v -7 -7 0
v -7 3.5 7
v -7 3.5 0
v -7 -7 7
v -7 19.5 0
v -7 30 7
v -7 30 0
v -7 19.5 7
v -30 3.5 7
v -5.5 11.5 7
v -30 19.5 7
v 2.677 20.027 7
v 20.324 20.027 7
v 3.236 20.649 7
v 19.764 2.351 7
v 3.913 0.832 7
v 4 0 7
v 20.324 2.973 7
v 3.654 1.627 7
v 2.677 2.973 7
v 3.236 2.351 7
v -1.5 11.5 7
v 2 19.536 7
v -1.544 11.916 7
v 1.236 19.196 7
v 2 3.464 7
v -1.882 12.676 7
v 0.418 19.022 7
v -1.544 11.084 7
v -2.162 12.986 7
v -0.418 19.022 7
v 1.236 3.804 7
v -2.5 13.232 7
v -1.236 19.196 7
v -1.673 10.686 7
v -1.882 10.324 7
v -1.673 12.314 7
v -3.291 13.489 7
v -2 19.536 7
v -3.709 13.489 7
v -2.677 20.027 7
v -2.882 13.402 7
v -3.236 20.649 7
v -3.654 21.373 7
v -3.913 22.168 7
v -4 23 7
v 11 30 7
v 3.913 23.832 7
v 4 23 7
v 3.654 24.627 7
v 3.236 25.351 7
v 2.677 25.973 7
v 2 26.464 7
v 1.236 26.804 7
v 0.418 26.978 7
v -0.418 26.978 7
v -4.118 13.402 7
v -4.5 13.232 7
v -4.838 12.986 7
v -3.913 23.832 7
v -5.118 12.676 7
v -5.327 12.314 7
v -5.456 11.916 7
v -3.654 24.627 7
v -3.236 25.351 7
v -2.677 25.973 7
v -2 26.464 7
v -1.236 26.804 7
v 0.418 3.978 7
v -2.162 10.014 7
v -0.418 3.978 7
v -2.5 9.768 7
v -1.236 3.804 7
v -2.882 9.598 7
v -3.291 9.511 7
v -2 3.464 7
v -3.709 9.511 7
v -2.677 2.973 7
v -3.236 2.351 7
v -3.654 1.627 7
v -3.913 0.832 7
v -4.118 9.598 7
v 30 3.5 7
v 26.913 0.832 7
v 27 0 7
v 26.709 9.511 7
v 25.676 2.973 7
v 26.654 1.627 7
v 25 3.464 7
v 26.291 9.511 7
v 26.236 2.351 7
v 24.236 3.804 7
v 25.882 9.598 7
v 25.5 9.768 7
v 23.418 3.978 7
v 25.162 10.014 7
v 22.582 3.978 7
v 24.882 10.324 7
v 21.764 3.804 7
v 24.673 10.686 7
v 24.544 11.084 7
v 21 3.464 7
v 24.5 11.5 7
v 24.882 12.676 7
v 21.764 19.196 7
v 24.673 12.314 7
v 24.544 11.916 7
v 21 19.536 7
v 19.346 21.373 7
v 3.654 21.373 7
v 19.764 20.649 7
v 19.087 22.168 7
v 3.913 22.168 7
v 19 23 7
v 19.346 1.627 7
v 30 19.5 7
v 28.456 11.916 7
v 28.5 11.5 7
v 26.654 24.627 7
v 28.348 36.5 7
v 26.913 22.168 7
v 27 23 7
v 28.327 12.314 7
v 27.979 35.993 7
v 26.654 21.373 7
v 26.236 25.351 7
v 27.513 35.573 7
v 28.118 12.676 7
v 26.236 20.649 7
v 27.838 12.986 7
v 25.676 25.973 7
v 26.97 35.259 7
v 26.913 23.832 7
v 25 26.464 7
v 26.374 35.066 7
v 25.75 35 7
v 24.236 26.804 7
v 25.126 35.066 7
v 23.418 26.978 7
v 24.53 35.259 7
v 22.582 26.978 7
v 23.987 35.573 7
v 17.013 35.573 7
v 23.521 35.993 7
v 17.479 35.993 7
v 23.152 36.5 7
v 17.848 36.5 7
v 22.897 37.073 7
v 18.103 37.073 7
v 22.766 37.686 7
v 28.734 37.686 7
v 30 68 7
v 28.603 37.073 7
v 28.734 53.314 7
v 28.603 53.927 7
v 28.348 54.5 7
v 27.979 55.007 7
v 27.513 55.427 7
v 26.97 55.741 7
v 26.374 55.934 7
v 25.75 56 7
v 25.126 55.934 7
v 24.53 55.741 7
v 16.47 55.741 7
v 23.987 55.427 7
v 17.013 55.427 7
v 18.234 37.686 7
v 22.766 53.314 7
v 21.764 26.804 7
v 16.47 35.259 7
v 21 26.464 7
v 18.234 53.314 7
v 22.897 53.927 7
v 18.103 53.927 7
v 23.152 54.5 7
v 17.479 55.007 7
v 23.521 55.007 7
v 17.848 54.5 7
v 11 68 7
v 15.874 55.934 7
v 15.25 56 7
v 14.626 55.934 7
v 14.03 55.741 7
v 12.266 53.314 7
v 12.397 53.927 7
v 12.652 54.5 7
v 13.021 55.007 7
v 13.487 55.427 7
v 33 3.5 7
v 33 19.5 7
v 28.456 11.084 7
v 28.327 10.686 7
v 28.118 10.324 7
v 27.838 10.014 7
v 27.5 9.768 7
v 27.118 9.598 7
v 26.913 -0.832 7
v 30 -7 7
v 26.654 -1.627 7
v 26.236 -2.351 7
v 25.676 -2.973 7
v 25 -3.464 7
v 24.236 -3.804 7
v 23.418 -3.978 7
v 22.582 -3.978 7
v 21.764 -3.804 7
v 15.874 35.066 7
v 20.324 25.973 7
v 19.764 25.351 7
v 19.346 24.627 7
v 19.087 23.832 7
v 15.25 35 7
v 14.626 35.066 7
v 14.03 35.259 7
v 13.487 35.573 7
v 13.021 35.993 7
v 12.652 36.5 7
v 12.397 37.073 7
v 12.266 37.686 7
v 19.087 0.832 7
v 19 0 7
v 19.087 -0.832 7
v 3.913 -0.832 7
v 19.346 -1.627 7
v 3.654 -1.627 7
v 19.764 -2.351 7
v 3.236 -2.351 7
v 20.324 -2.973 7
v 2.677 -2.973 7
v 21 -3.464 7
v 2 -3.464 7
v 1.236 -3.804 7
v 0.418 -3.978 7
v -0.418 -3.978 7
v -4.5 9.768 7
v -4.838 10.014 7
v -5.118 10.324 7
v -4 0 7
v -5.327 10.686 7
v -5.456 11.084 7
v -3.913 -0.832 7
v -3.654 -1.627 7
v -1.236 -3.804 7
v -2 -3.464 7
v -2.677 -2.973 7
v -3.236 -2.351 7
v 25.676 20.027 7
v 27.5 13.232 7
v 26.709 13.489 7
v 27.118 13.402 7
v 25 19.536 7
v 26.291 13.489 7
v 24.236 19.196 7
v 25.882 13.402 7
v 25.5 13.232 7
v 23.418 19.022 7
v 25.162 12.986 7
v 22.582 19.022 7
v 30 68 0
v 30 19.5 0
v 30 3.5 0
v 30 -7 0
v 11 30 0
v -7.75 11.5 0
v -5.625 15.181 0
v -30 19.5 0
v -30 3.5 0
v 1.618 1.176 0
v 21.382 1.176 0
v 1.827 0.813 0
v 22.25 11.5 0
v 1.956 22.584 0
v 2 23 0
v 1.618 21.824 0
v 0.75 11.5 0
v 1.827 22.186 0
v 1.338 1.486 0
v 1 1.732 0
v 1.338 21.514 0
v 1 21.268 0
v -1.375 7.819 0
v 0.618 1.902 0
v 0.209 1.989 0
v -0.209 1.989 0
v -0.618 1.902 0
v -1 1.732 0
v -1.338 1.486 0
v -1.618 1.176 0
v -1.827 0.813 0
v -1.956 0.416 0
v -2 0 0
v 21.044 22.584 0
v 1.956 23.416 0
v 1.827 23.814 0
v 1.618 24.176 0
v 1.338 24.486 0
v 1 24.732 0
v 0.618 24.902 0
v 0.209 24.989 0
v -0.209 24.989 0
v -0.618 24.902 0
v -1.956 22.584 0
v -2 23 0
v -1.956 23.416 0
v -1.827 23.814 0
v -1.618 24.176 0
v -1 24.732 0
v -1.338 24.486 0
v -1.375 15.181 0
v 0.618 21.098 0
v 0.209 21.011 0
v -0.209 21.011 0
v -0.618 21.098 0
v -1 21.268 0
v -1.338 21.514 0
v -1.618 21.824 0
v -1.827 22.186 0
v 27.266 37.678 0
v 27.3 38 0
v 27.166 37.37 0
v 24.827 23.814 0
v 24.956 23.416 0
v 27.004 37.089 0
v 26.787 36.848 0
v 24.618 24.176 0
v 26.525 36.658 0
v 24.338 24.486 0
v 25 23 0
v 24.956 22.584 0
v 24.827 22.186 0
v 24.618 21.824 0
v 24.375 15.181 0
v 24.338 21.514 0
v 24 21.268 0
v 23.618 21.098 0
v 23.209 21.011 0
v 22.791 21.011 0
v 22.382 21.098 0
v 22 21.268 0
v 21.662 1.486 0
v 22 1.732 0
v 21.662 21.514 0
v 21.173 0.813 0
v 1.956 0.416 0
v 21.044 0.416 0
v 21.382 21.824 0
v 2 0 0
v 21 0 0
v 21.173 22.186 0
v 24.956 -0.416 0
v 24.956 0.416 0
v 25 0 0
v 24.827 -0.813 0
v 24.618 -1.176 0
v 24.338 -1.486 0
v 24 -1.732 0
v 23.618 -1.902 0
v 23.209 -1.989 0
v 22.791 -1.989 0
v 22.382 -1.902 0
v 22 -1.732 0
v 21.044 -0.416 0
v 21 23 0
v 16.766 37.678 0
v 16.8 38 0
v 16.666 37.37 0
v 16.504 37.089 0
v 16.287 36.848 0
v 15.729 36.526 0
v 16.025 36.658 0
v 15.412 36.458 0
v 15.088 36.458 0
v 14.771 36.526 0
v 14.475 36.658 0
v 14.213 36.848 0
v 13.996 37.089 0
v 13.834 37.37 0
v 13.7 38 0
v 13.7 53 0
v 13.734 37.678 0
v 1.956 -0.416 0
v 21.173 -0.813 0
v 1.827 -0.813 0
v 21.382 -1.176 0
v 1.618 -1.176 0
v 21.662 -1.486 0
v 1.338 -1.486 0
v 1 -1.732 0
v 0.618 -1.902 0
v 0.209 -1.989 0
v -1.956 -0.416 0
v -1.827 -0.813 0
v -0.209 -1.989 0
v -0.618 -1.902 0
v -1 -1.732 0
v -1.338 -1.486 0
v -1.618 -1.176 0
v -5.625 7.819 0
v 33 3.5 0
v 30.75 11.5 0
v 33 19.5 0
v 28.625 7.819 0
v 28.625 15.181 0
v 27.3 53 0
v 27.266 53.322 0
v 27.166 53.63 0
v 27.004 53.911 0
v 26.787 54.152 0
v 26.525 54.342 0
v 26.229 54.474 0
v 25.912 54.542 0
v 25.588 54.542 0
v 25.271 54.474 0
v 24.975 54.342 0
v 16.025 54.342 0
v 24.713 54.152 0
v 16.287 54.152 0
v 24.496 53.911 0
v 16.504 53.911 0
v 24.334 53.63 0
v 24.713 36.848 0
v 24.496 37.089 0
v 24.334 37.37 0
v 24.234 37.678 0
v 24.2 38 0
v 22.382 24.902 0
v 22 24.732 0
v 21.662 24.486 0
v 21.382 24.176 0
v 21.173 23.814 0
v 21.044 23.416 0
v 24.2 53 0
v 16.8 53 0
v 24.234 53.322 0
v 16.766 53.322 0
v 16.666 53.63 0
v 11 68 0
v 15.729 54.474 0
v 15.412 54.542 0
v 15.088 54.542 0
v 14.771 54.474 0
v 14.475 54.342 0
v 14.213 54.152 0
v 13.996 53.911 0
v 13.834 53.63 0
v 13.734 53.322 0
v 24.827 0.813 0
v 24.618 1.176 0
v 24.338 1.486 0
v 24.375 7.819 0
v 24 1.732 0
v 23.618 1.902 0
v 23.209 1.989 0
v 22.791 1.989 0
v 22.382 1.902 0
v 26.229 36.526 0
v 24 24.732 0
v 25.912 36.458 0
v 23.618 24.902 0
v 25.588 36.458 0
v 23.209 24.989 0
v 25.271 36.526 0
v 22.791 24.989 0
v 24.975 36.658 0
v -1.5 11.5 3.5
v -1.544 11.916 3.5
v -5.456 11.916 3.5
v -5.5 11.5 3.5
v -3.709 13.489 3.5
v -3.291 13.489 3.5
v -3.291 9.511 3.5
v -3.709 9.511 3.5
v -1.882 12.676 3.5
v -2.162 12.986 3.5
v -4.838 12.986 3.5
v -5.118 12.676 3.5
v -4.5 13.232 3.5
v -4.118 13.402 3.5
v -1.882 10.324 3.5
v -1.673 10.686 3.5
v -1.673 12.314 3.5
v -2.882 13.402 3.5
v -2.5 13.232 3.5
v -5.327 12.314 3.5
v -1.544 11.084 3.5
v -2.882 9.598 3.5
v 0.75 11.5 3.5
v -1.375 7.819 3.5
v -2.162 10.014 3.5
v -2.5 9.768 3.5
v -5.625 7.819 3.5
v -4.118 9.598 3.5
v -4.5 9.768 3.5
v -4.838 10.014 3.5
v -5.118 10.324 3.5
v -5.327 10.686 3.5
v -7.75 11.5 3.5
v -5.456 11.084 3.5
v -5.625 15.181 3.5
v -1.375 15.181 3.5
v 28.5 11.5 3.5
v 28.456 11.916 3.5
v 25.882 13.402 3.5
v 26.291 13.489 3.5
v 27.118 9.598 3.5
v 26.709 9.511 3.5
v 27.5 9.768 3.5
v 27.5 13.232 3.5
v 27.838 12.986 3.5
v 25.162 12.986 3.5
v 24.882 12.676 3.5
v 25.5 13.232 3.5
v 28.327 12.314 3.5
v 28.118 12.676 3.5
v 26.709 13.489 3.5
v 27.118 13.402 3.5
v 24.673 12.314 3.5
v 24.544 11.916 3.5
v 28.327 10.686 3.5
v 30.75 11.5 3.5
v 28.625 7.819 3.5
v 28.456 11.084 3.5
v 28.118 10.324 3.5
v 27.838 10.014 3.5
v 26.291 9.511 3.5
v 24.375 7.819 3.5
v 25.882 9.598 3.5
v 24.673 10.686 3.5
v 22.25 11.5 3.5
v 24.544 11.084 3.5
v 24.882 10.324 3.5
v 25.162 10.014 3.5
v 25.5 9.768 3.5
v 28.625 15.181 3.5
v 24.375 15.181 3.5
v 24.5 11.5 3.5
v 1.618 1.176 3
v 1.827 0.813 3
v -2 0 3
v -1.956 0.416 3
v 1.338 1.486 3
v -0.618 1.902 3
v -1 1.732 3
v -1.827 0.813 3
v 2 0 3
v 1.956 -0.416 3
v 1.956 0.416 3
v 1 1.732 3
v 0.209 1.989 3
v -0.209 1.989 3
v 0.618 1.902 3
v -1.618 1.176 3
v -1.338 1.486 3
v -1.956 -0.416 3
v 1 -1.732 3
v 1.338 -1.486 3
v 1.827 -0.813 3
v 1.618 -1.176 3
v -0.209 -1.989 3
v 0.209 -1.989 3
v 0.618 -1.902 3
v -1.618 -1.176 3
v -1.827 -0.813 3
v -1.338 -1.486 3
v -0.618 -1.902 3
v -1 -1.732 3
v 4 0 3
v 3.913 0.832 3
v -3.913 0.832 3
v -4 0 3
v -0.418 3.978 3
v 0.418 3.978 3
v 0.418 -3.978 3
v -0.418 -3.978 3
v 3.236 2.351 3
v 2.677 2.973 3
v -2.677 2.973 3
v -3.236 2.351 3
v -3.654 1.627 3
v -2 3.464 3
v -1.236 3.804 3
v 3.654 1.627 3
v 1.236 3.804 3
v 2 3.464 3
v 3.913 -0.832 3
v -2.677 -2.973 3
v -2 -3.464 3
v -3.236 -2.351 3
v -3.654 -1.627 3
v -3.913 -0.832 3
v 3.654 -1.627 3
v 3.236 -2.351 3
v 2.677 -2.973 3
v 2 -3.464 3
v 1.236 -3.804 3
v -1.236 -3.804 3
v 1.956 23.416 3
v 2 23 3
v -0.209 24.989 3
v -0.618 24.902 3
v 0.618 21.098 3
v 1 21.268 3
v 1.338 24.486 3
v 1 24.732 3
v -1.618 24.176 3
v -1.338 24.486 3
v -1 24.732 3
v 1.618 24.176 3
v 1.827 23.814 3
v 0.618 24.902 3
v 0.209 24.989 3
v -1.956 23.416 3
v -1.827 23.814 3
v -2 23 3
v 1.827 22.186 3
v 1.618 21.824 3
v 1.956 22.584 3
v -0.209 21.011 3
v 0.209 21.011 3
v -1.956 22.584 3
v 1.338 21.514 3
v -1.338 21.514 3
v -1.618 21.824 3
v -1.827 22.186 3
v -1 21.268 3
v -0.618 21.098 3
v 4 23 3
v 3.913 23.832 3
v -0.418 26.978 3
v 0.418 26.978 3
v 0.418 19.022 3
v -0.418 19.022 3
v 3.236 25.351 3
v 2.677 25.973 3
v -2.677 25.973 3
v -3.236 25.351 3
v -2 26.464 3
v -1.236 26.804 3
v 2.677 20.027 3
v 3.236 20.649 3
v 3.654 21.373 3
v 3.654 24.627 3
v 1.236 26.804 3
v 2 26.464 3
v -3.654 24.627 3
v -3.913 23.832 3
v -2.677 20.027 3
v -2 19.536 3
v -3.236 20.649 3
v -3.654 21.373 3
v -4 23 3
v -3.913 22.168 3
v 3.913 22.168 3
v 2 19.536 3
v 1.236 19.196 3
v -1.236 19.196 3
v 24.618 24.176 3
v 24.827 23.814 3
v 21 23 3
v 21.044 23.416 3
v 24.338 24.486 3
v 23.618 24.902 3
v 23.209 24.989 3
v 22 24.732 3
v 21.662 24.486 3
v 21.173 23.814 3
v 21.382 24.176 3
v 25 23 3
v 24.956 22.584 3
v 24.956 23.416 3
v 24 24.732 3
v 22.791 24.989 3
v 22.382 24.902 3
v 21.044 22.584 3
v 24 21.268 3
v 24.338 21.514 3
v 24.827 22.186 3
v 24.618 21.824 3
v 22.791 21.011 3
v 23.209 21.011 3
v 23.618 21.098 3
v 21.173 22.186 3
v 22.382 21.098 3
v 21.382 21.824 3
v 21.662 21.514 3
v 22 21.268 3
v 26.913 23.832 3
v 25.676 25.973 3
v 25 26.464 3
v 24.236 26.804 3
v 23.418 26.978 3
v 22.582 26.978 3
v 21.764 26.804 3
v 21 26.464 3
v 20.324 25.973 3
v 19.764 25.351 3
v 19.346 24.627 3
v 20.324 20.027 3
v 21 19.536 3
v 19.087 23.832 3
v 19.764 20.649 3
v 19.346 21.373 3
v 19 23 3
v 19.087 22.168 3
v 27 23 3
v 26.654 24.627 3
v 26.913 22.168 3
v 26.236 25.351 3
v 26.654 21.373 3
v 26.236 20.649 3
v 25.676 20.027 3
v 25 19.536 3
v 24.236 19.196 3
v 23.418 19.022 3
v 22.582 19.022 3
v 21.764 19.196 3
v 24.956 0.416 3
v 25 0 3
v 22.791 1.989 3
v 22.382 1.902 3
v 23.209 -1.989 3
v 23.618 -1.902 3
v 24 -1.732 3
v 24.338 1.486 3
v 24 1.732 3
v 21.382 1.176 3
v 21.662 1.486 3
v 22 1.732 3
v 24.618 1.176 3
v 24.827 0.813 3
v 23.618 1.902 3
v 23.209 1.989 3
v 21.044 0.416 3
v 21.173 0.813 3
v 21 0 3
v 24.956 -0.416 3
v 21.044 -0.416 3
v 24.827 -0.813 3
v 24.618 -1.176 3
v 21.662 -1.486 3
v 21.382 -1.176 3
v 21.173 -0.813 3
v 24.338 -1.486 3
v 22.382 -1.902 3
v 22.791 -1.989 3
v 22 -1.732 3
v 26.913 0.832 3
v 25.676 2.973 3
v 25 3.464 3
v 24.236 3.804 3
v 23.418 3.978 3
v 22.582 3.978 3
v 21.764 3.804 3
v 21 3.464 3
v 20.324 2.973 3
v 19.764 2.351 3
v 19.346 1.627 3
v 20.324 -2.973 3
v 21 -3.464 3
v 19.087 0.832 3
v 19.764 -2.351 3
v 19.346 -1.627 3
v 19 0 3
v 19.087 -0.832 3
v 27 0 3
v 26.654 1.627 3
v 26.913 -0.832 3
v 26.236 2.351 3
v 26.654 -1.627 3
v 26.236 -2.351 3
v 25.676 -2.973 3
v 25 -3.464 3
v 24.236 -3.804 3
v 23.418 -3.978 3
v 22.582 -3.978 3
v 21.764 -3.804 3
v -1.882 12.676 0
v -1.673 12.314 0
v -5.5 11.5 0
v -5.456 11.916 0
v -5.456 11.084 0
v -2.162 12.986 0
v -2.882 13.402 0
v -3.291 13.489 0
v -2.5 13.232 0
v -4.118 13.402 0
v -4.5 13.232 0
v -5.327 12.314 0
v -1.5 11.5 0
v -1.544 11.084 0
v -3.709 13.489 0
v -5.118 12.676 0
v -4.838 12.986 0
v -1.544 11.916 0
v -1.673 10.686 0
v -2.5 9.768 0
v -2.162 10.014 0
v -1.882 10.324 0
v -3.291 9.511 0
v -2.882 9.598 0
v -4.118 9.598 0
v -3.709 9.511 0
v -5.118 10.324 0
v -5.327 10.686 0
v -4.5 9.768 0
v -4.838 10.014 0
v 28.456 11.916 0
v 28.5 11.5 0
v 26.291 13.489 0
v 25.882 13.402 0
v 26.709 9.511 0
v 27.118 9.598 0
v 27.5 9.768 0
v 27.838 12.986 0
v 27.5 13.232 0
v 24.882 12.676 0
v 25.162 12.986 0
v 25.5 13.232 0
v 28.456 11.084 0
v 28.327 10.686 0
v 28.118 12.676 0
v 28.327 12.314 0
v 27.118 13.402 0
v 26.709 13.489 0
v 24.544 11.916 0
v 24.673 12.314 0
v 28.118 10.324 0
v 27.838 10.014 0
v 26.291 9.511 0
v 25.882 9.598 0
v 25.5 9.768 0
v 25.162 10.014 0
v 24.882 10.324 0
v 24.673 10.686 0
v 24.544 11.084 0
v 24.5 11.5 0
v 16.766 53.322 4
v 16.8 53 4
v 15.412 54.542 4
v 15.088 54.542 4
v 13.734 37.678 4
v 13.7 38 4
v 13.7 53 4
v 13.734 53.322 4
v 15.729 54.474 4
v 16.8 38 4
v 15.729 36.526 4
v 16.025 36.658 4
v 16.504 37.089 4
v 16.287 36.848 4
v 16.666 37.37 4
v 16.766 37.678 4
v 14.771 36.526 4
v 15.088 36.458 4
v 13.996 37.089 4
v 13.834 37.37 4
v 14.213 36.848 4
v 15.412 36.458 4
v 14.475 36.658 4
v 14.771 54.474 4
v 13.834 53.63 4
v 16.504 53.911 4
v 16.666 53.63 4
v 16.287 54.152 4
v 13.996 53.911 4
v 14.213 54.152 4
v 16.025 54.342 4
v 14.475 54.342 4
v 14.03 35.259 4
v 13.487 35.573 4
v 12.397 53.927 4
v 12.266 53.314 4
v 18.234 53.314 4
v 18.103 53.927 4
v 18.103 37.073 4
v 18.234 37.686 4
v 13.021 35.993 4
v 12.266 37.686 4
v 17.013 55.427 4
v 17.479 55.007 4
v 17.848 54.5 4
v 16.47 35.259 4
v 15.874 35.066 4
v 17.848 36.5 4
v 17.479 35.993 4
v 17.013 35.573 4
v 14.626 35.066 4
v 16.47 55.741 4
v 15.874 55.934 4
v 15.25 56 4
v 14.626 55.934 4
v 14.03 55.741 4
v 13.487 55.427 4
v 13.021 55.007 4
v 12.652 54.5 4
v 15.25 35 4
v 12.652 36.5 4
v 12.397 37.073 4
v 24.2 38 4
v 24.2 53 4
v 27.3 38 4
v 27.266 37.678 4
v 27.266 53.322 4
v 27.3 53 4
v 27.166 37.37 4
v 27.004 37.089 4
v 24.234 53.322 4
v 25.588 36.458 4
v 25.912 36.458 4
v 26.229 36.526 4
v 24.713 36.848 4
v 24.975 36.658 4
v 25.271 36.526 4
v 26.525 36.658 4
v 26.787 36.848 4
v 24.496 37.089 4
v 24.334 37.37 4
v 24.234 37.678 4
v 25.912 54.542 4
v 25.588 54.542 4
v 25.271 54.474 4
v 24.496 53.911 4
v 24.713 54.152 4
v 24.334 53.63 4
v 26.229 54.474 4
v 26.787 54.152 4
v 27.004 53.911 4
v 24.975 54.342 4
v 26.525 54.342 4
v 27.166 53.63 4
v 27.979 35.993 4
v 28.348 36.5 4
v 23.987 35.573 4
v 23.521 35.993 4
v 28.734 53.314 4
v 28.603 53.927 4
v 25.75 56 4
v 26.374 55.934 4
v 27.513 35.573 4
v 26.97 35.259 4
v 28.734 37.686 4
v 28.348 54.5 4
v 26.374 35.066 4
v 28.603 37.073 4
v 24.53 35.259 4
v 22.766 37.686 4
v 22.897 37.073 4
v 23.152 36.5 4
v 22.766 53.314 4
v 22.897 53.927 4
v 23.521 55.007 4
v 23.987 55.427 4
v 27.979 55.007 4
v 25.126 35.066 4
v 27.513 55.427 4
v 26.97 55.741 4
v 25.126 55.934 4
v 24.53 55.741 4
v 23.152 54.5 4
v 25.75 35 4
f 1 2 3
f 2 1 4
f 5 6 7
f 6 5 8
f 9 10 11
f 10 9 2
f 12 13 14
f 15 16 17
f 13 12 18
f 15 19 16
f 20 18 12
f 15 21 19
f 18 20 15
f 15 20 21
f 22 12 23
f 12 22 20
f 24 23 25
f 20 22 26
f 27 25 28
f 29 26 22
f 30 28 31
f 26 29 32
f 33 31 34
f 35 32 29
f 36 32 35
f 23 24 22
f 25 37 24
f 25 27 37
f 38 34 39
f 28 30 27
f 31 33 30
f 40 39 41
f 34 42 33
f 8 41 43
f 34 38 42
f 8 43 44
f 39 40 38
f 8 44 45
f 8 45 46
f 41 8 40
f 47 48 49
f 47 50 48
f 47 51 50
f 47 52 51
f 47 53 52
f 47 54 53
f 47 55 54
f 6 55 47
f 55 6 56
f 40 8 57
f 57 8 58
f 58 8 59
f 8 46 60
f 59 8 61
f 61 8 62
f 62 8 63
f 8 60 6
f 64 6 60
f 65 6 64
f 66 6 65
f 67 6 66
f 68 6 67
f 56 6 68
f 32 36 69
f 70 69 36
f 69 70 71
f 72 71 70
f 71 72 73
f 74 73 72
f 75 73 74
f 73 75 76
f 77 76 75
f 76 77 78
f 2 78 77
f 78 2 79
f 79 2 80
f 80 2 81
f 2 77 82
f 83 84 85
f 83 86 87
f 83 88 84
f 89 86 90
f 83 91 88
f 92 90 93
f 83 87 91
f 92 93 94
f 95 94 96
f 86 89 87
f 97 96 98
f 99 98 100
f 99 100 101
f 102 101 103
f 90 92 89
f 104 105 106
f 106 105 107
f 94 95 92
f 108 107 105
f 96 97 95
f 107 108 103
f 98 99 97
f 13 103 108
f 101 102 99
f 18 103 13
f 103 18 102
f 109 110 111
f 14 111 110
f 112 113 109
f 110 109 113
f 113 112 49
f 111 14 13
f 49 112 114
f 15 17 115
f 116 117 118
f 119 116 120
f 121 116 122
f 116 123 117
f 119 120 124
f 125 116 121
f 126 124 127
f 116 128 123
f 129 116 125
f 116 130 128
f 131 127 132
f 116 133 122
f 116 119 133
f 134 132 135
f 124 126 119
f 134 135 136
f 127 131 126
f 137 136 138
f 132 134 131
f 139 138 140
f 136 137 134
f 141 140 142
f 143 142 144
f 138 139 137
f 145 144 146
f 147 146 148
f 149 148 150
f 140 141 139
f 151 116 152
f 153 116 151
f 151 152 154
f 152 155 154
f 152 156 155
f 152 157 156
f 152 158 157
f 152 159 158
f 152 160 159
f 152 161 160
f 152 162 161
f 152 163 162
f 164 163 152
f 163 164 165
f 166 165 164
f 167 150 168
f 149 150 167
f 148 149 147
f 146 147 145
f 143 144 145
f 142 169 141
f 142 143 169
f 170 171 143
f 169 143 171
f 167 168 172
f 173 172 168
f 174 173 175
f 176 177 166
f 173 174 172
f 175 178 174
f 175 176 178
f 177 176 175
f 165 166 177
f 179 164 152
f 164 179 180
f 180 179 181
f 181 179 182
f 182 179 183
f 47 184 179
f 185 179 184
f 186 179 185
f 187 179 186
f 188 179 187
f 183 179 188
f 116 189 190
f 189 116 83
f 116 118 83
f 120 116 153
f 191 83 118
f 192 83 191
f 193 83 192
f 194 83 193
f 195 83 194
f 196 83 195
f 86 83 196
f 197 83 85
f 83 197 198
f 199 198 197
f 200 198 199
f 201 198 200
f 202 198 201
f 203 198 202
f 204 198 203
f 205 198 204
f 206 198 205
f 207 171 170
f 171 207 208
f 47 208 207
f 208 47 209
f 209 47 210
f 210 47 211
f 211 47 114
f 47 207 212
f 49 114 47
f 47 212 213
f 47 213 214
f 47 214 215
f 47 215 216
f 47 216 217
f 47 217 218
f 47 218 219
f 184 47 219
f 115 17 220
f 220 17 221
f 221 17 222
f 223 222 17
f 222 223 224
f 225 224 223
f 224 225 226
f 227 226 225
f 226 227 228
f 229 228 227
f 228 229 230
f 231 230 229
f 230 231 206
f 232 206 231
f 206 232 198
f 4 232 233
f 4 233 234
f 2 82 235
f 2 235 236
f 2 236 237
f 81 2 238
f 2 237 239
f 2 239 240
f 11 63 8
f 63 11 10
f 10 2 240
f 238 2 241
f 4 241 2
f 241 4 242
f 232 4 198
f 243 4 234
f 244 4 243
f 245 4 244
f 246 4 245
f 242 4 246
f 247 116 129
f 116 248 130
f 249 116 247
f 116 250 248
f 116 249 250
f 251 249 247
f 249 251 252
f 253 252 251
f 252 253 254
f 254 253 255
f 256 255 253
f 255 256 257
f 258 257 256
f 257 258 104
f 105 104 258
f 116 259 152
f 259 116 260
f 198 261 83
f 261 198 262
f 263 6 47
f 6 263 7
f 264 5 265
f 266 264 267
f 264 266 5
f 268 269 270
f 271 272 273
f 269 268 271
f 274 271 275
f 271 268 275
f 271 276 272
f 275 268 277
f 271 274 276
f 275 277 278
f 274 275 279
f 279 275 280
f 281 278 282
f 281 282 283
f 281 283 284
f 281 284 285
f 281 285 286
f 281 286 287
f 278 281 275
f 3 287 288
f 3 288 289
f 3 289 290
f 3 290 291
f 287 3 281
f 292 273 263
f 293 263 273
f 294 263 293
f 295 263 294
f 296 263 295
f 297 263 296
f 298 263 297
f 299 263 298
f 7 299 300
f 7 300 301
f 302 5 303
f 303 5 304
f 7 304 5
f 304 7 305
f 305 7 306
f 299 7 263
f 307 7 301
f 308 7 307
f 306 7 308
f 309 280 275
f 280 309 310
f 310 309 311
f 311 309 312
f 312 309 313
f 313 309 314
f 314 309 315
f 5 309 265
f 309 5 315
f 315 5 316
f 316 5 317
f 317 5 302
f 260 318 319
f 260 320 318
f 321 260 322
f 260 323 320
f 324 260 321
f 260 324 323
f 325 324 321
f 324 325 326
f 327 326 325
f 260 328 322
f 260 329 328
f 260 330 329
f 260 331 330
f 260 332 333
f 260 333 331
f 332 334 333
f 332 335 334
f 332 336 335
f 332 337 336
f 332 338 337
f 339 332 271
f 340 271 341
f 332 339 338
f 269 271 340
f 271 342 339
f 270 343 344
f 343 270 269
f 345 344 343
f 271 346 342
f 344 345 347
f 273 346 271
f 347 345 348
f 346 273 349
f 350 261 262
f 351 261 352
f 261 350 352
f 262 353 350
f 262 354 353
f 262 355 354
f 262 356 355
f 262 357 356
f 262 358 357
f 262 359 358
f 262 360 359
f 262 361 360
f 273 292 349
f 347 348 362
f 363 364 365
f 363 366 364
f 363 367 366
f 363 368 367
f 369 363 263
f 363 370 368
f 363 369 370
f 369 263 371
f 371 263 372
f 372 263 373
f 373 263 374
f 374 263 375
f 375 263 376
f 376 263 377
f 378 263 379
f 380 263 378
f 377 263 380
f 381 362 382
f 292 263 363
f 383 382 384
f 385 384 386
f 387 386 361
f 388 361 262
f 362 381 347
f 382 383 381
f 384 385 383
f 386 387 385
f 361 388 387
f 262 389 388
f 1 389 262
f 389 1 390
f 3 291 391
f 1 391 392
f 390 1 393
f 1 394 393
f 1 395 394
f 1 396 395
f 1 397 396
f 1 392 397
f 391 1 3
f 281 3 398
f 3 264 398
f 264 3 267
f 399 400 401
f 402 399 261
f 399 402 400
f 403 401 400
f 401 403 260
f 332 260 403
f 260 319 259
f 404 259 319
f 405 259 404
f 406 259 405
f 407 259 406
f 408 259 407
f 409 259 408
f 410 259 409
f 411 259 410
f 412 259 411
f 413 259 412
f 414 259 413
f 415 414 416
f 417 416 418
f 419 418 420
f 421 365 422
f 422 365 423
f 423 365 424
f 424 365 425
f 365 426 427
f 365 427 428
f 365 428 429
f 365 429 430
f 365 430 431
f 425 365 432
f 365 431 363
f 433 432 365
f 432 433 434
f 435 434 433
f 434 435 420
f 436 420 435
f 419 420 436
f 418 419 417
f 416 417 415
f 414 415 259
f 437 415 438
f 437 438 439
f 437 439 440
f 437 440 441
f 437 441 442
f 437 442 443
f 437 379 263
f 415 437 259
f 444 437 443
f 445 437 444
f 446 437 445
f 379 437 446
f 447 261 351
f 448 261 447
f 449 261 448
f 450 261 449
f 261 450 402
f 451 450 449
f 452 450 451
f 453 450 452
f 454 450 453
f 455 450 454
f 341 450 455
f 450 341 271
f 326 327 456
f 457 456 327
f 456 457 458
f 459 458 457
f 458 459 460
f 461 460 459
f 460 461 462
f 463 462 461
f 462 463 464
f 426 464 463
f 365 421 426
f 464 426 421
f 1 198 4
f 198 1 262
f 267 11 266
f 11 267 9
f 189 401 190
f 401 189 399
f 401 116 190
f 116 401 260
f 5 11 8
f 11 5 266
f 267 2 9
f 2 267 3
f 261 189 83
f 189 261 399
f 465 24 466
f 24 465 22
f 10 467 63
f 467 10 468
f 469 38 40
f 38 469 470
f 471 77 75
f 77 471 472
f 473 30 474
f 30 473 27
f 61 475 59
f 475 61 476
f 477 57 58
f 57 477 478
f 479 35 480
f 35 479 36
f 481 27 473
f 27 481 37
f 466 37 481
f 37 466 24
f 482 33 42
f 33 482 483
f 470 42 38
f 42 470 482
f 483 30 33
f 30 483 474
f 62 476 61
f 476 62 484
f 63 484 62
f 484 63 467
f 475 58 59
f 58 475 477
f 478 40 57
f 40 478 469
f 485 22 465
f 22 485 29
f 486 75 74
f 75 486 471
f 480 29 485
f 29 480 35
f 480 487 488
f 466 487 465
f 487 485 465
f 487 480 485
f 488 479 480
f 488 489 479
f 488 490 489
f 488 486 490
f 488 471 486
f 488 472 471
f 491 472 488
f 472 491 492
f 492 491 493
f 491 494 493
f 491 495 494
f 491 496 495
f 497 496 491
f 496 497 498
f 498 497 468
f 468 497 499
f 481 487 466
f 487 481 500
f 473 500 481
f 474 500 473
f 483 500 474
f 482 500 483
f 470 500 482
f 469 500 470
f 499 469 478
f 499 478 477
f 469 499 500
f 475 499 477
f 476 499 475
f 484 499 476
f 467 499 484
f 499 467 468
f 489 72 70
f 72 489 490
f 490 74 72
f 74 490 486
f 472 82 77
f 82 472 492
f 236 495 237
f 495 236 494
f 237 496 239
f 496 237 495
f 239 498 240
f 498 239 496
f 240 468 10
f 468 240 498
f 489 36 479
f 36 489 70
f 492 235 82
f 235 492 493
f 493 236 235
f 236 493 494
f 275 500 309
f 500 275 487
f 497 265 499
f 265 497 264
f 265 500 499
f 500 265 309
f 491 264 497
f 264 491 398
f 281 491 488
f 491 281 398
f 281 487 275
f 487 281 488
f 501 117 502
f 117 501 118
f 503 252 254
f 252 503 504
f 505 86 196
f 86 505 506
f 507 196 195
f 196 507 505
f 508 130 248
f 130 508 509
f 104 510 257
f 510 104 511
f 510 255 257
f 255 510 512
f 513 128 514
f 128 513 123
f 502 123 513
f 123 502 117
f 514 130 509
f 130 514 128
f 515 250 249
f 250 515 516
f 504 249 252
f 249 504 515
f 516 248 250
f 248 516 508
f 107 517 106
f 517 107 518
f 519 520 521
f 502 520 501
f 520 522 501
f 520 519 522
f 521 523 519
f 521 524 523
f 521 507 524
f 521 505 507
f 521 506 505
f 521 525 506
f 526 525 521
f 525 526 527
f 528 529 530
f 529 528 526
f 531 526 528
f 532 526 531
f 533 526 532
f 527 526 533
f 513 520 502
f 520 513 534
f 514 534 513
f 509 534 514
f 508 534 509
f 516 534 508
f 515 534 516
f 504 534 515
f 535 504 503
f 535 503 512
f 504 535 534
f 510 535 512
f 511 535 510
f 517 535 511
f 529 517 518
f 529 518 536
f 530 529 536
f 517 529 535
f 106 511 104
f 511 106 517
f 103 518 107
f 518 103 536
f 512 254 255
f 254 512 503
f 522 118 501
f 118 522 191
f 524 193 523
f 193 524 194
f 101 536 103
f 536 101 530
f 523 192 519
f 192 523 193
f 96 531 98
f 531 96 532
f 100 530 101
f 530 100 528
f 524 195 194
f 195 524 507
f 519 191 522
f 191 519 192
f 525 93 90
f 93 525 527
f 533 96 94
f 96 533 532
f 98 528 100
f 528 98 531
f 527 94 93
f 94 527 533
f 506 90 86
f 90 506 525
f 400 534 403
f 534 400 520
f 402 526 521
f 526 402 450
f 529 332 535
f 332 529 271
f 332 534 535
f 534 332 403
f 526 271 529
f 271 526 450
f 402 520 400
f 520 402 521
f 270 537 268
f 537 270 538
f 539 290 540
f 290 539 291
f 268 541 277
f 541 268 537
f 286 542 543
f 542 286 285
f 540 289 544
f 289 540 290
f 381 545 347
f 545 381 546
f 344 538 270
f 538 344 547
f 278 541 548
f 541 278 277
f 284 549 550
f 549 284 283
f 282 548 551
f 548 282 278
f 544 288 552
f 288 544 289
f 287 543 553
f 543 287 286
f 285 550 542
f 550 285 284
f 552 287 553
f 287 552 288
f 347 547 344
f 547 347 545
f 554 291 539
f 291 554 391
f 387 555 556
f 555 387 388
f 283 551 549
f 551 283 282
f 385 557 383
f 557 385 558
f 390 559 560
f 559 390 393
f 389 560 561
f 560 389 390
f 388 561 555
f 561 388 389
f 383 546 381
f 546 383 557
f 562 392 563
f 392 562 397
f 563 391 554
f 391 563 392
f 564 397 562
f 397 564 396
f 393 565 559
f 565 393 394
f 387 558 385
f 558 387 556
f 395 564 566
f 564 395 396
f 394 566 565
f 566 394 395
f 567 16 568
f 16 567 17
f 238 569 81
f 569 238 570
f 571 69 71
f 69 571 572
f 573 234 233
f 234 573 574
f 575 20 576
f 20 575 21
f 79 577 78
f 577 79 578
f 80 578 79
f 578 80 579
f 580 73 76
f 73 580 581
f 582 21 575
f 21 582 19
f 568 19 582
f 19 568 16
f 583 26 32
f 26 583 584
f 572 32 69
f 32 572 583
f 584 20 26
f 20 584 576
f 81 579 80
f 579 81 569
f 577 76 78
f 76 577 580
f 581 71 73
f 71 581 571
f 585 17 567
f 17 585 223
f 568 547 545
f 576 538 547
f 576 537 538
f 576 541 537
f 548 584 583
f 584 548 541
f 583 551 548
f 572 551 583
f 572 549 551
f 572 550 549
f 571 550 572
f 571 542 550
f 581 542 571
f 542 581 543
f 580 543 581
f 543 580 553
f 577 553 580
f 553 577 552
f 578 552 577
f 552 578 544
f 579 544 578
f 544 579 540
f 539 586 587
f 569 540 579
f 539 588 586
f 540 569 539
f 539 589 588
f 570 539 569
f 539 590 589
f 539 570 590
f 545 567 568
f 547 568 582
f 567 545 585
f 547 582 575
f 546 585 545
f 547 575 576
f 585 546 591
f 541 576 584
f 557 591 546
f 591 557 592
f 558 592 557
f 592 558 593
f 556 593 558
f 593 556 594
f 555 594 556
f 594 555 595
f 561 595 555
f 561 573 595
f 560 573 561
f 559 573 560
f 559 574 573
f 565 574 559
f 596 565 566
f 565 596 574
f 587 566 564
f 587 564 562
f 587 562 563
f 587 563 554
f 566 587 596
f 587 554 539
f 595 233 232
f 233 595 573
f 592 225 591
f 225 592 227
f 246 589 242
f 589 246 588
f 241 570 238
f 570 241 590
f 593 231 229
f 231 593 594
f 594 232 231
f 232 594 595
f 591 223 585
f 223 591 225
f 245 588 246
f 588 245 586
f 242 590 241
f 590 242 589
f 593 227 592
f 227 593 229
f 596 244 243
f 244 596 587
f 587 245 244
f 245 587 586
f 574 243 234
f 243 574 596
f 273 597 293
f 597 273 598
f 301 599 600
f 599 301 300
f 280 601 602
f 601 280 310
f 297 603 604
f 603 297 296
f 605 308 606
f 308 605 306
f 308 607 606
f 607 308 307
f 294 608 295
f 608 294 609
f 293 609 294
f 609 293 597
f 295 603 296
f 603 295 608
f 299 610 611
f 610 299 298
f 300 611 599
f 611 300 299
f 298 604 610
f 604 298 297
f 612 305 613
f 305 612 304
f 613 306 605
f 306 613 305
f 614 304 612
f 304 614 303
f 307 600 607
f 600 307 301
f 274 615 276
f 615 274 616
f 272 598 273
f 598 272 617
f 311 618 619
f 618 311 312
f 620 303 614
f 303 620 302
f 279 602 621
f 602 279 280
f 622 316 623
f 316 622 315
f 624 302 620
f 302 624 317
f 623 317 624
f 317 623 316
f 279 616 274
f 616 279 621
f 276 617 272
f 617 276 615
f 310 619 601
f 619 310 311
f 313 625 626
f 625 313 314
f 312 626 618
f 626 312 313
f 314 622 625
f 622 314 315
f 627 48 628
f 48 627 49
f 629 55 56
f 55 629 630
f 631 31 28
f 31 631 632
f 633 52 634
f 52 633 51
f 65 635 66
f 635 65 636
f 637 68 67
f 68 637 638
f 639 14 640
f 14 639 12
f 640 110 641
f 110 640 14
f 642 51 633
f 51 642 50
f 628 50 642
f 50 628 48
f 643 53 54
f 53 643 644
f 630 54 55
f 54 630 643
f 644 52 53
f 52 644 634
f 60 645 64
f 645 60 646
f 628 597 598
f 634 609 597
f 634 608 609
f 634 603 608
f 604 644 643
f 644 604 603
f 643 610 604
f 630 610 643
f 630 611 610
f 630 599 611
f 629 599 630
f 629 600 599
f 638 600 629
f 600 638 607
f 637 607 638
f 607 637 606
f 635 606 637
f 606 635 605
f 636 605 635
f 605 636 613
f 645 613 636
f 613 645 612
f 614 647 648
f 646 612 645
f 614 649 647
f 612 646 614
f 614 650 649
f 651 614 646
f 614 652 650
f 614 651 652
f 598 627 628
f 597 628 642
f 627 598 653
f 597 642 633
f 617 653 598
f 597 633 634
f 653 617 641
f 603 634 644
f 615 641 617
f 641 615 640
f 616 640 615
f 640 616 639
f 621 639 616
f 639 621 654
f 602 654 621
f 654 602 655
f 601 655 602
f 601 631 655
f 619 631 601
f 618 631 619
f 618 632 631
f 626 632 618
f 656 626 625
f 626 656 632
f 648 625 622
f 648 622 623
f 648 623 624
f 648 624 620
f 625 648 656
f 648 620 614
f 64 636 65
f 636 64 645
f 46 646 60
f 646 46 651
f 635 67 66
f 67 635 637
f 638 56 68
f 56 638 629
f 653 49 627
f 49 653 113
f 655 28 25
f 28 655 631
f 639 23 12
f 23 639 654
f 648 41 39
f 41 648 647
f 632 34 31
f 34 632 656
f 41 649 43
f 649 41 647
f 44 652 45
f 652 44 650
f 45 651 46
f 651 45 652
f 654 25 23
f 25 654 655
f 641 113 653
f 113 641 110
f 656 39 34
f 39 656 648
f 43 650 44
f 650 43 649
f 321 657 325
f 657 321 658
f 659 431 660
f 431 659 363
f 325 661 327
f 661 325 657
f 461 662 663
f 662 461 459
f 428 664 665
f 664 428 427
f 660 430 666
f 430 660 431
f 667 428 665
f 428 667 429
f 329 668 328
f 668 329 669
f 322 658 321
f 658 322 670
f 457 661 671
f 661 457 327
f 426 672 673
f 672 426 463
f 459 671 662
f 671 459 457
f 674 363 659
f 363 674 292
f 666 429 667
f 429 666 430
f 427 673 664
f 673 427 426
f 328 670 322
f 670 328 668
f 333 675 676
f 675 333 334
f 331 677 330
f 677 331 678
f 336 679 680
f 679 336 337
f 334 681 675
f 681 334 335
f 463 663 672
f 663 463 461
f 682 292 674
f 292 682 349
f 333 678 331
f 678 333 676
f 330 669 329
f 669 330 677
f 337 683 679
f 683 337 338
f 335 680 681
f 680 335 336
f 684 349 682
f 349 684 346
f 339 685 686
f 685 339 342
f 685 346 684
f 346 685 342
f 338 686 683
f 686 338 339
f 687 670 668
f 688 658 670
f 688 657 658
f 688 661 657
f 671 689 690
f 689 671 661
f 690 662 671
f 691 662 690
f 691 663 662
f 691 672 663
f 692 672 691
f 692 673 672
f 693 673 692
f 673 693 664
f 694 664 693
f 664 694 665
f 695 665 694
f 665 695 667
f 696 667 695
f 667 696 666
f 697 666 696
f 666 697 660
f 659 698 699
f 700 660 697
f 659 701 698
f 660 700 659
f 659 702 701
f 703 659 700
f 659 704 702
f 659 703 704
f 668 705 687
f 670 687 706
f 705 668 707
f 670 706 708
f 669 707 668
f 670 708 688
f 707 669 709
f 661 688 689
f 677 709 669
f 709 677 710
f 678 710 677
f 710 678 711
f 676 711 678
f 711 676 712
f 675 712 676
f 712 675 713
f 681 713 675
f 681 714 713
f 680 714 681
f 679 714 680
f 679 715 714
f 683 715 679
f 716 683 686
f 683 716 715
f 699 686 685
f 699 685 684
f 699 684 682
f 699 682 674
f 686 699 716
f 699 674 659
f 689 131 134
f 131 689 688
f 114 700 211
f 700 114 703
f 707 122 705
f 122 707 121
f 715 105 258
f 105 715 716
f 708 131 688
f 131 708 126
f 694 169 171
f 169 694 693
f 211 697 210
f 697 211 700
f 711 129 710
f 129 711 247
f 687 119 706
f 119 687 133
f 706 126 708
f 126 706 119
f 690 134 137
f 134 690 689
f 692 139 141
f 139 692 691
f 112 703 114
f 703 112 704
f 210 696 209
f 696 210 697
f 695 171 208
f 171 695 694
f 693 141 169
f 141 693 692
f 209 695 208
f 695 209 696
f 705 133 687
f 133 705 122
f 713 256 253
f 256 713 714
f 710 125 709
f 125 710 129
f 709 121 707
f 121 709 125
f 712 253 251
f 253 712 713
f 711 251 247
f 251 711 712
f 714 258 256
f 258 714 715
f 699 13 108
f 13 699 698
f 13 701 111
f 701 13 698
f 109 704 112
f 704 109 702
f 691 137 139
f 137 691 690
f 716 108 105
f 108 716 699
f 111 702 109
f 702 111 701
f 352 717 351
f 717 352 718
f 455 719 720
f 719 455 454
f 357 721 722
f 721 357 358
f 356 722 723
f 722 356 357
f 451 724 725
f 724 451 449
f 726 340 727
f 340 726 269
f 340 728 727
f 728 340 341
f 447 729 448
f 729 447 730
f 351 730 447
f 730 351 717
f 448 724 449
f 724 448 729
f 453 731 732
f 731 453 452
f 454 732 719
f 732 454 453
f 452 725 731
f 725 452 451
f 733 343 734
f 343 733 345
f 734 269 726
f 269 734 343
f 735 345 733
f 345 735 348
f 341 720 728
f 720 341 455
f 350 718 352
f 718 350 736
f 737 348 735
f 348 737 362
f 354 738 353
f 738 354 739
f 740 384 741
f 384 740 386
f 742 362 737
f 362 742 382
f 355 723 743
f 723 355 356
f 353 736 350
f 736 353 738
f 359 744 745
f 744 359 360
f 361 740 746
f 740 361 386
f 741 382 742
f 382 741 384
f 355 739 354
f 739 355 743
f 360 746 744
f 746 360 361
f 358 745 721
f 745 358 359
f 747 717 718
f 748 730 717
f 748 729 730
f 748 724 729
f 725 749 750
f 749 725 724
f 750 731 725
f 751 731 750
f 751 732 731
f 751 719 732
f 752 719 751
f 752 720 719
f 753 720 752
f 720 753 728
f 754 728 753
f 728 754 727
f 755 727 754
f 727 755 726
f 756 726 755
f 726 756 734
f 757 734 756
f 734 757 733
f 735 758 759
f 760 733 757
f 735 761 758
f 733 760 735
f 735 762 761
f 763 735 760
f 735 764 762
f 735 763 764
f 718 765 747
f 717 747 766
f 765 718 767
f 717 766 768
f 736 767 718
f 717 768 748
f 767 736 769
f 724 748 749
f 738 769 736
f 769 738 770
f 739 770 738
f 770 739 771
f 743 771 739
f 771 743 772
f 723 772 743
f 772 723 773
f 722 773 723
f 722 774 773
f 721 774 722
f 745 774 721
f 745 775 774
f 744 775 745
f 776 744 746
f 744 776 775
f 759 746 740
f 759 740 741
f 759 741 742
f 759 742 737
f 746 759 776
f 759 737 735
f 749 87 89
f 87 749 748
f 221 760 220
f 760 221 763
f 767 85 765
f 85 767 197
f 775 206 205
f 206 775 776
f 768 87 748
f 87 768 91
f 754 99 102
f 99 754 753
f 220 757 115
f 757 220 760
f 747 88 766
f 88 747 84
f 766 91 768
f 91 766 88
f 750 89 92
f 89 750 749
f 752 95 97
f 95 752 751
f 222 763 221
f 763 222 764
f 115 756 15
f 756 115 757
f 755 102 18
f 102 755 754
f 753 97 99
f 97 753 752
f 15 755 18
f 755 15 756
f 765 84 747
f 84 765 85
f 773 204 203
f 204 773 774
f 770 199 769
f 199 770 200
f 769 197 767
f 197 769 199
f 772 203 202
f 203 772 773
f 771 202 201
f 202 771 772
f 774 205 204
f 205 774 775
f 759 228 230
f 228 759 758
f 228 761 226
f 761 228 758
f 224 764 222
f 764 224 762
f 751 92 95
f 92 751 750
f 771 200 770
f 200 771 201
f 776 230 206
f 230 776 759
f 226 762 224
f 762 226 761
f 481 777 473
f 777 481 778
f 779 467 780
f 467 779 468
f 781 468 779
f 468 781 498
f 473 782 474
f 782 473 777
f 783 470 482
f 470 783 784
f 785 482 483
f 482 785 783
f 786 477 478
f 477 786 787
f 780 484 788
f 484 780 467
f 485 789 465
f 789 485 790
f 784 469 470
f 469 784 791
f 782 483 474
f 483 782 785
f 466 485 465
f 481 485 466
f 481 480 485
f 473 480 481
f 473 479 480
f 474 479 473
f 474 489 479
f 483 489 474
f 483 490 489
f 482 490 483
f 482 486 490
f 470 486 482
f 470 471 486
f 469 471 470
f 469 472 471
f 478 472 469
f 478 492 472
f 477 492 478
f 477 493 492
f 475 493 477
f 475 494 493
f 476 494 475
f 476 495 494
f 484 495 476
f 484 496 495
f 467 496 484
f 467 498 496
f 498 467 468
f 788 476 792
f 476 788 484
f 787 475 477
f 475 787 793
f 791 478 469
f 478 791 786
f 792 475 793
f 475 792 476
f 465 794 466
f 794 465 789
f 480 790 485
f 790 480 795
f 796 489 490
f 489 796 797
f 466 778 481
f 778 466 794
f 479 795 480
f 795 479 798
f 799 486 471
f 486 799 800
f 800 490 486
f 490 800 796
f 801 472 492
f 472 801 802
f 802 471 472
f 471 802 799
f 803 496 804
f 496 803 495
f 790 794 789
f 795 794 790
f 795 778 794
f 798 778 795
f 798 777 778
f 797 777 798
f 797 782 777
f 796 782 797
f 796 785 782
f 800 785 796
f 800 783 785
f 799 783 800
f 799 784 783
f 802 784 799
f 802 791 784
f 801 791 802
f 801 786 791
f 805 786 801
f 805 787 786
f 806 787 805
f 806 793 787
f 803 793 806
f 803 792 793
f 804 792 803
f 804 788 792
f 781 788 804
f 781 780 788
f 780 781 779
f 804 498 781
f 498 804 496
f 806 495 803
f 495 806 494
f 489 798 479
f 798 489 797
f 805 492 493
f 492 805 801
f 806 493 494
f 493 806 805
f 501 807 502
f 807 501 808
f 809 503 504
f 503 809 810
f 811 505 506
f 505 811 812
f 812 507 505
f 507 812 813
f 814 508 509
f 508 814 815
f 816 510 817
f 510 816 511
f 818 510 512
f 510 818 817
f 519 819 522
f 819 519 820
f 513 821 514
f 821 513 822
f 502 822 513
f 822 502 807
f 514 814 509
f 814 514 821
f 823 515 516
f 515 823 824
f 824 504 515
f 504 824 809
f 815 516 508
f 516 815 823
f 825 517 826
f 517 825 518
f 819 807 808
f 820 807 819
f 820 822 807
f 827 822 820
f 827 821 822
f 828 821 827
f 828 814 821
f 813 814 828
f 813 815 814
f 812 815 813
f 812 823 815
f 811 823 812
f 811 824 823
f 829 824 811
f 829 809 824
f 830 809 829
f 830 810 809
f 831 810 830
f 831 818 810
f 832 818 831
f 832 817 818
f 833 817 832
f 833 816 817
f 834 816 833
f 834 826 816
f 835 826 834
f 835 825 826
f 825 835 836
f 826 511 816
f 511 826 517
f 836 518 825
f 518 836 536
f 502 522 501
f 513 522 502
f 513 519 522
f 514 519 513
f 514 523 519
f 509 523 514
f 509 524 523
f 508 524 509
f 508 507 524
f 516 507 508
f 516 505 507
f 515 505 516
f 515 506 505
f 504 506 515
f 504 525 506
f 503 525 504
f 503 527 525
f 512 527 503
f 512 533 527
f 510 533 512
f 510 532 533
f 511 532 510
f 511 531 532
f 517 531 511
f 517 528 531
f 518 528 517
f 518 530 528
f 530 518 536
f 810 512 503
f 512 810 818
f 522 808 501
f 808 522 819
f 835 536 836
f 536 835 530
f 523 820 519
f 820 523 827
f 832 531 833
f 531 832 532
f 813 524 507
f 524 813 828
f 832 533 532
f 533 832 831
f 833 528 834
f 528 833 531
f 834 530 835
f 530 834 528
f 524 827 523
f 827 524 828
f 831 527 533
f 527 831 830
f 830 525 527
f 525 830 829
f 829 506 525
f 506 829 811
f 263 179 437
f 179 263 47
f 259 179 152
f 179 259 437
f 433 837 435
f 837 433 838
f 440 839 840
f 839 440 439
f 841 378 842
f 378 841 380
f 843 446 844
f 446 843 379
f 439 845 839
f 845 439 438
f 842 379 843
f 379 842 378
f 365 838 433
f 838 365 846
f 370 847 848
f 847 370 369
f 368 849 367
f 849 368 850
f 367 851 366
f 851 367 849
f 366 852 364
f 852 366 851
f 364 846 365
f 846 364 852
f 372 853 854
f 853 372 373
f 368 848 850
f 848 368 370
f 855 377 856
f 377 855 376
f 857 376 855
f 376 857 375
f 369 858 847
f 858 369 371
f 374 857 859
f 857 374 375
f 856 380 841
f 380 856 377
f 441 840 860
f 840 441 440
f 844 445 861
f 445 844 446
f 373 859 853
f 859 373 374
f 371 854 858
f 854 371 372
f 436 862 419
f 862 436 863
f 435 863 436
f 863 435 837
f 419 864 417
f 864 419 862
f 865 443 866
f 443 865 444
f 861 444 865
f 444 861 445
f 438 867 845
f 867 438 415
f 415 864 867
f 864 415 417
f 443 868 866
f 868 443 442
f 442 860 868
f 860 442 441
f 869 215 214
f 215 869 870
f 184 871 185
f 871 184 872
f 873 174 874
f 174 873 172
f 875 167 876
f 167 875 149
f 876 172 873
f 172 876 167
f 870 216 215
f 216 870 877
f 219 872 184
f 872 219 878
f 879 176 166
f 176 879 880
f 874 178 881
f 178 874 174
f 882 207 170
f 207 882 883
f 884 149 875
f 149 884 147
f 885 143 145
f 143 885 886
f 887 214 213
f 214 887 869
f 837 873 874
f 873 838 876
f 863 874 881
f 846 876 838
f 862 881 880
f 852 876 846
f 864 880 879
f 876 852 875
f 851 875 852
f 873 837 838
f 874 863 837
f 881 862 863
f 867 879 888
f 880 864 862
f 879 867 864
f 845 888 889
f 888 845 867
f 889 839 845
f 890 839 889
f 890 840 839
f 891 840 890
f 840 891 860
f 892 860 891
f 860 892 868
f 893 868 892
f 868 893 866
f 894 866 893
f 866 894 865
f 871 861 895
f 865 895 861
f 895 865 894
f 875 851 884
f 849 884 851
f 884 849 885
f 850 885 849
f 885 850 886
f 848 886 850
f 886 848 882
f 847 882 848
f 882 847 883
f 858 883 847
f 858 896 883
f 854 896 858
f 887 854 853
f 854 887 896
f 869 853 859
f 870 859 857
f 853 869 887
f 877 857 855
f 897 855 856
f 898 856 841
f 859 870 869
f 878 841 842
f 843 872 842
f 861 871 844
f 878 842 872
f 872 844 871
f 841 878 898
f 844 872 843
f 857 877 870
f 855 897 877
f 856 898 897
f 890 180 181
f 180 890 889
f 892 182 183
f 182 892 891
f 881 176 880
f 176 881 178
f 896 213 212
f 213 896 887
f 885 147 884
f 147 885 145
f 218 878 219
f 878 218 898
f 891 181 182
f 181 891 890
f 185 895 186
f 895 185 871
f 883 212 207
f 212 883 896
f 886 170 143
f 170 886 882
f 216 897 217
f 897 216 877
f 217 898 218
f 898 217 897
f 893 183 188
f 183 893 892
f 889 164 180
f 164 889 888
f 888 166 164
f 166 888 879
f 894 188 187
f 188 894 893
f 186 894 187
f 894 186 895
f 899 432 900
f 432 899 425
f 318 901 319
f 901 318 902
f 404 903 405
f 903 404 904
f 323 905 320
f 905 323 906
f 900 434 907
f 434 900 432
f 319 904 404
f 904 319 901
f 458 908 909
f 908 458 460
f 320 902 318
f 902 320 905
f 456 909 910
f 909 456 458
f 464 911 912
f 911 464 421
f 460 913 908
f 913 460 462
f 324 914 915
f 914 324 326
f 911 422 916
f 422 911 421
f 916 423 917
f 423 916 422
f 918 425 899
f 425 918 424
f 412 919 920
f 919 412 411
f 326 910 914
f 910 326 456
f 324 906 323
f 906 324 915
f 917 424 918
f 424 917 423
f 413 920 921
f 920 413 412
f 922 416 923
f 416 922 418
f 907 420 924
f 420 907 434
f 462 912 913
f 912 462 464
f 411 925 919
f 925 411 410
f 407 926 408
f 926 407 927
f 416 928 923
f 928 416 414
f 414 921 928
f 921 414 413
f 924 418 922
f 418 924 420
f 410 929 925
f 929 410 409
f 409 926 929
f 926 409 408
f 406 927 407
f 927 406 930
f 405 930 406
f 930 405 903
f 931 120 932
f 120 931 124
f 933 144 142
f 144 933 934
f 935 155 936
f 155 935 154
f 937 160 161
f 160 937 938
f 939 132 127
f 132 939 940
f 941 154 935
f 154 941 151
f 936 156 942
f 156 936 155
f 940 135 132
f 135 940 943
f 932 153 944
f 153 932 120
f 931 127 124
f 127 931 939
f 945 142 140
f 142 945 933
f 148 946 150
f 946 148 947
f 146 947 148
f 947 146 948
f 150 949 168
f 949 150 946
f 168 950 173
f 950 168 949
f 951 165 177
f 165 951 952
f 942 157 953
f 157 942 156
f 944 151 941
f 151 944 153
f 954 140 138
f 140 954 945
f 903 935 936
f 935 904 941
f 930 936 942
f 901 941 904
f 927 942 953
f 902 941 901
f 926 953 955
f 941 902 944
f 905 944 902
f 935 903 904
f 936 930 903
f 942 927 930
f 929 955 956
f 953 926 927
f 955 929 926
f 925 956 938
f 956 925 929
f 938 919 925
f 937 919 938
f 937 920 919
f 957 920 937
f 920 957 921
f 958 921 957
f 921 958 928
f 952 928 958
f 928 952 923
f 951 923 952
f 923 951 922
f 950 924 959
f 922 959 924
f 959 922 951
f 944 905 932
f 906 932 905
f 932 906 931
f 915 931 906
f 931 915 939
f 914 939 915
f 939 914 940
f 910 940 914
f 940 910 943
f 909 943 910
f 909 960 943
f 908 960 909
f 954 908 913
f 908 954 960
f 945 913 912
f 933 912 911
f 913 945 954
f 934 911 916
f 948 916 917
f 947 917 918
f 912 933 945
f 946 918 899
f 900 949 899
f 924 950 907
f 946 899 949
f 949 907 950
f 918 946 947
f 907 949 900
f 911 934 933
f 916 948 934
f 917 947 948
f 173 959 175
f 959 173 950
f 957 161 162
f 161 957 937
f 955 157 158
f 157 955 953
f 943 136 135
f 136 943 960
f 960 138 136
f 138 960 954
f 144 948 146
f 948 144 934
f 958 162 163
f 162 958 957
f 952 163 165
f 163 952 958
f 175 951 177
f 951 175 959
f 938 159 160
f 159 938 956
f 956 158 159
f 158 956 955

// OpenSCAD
diametre_M4=4;
head_M4=8;
bolt_M4=8.5;

module adapter() {
difference(){    
    union(){
        translate([-7, -7, 0]) cube([37, 37, 7]);
        translate([-4-6-20, -3.5+7, 0]) cube([43+20, 16, 7]);
    }
    
    translate([-3.5, 11.5, 3.5]) cylinder(h=20, r=diametre_M4/2, $fn=30);
    translate([-3.5, 11.5, 0]) cylinder(h=3.5, r=bolt_M4/2, $fn=6);
    translate([-3.5+30, 11.5, 3.5]) cylinder(h=20, r=diametre_M4/2, $fn=30);
    translate([-3.5+30, 11.5, 0]) cylinder(h=3.5, r=bolt_M4/2, $fn=6);
    
    translate([0, 0, 0]) cylinder(h=20, r=diametre_M4/2, $fn=30);
    
    translate([0, 0, 3]) cylinder(h=20, r=head_M4/2, $fn=30);
    
    translate([0, 23, 0]) cylinder(h=20, r=diametre_M4/2, $fn=30);
    
    translate([0, 23, 3]) cylinder(h=20, r=head_M4/2, $fn=30); 
    
    translate([23, 23, 0]) cylinder(h=20, r=diametre_M4/2, $fn=30);
    
    translate([23, 23, 3]) cylinder(h=20, r=head_M4/2, $fn=30); 
    
    translate([23, 0, 0]) cylinder(h=20, r=diametre_M4/2, $fn=30);
    
    translate([23, 0, 3]) cylinder(h=20, r=head_M4/2, $fn=30); 
}
translate([-3.5, 11.5, 0]) cylinder(h=3.5, r=diametre_M4/2, $fn=30);
translate([-3.5+30, 11.5, 0]) cylinder(h=3.5, r=diametre_M4/2, $fn=30);
}

module sensor(){
    difference(){
        translate([2, 28, 0]) cube([19, 40, 7]);
        // Slots for inductive sensor
        hull(){
            translate([2+(19-10.5)/2, 28+10, 0]) cylinder(h=20, r=3.1/2, $fn=30); 
            translate([2+(19-10.5)/2, 28+25, 0]) cylinder(h=20, r=3.1/2, $fn=30); 
        }
        
        hull(){
            translate([2+(19-10.5)/2, 28+10, 4]) rotate([0, 0, 30]) cylinder(h=3, r=6/2, $fn=30); 
            translate([2+(19-10.5)/2, 28+25, 4])  rotate([0, 0, 30]) cylinder(h=3, r=6/2, $fn=30); 
        }
        
        hull(){
            translate([2+(19-10.5)/2+10.5, 28+10, 0]) cylinder(h=20, r=3.1/2, $fn=30); 
            translate([2+(19-10.5)/2+10.5, 28+25, 0]) cylinder(h=20, r=3.1/2, $fn=30); 
        }
        
        hull(){
            translate([2+(19-10.5)/2+10.5, 28+10, 4])  rotate([0, 0, 30]) cylinder(h=3, r=6/2, $fn=30); 
            translate([2+(19-10.5)/2+10.5, 28+25, 4])  rotate([0, 0, 30]) cylinder(h=3, r=6/2, $fn=30); 
        }
    }
}

rotate([0, 0, 0]){
    adapter();
    translate([9, 0, 0]) sensor();
}
